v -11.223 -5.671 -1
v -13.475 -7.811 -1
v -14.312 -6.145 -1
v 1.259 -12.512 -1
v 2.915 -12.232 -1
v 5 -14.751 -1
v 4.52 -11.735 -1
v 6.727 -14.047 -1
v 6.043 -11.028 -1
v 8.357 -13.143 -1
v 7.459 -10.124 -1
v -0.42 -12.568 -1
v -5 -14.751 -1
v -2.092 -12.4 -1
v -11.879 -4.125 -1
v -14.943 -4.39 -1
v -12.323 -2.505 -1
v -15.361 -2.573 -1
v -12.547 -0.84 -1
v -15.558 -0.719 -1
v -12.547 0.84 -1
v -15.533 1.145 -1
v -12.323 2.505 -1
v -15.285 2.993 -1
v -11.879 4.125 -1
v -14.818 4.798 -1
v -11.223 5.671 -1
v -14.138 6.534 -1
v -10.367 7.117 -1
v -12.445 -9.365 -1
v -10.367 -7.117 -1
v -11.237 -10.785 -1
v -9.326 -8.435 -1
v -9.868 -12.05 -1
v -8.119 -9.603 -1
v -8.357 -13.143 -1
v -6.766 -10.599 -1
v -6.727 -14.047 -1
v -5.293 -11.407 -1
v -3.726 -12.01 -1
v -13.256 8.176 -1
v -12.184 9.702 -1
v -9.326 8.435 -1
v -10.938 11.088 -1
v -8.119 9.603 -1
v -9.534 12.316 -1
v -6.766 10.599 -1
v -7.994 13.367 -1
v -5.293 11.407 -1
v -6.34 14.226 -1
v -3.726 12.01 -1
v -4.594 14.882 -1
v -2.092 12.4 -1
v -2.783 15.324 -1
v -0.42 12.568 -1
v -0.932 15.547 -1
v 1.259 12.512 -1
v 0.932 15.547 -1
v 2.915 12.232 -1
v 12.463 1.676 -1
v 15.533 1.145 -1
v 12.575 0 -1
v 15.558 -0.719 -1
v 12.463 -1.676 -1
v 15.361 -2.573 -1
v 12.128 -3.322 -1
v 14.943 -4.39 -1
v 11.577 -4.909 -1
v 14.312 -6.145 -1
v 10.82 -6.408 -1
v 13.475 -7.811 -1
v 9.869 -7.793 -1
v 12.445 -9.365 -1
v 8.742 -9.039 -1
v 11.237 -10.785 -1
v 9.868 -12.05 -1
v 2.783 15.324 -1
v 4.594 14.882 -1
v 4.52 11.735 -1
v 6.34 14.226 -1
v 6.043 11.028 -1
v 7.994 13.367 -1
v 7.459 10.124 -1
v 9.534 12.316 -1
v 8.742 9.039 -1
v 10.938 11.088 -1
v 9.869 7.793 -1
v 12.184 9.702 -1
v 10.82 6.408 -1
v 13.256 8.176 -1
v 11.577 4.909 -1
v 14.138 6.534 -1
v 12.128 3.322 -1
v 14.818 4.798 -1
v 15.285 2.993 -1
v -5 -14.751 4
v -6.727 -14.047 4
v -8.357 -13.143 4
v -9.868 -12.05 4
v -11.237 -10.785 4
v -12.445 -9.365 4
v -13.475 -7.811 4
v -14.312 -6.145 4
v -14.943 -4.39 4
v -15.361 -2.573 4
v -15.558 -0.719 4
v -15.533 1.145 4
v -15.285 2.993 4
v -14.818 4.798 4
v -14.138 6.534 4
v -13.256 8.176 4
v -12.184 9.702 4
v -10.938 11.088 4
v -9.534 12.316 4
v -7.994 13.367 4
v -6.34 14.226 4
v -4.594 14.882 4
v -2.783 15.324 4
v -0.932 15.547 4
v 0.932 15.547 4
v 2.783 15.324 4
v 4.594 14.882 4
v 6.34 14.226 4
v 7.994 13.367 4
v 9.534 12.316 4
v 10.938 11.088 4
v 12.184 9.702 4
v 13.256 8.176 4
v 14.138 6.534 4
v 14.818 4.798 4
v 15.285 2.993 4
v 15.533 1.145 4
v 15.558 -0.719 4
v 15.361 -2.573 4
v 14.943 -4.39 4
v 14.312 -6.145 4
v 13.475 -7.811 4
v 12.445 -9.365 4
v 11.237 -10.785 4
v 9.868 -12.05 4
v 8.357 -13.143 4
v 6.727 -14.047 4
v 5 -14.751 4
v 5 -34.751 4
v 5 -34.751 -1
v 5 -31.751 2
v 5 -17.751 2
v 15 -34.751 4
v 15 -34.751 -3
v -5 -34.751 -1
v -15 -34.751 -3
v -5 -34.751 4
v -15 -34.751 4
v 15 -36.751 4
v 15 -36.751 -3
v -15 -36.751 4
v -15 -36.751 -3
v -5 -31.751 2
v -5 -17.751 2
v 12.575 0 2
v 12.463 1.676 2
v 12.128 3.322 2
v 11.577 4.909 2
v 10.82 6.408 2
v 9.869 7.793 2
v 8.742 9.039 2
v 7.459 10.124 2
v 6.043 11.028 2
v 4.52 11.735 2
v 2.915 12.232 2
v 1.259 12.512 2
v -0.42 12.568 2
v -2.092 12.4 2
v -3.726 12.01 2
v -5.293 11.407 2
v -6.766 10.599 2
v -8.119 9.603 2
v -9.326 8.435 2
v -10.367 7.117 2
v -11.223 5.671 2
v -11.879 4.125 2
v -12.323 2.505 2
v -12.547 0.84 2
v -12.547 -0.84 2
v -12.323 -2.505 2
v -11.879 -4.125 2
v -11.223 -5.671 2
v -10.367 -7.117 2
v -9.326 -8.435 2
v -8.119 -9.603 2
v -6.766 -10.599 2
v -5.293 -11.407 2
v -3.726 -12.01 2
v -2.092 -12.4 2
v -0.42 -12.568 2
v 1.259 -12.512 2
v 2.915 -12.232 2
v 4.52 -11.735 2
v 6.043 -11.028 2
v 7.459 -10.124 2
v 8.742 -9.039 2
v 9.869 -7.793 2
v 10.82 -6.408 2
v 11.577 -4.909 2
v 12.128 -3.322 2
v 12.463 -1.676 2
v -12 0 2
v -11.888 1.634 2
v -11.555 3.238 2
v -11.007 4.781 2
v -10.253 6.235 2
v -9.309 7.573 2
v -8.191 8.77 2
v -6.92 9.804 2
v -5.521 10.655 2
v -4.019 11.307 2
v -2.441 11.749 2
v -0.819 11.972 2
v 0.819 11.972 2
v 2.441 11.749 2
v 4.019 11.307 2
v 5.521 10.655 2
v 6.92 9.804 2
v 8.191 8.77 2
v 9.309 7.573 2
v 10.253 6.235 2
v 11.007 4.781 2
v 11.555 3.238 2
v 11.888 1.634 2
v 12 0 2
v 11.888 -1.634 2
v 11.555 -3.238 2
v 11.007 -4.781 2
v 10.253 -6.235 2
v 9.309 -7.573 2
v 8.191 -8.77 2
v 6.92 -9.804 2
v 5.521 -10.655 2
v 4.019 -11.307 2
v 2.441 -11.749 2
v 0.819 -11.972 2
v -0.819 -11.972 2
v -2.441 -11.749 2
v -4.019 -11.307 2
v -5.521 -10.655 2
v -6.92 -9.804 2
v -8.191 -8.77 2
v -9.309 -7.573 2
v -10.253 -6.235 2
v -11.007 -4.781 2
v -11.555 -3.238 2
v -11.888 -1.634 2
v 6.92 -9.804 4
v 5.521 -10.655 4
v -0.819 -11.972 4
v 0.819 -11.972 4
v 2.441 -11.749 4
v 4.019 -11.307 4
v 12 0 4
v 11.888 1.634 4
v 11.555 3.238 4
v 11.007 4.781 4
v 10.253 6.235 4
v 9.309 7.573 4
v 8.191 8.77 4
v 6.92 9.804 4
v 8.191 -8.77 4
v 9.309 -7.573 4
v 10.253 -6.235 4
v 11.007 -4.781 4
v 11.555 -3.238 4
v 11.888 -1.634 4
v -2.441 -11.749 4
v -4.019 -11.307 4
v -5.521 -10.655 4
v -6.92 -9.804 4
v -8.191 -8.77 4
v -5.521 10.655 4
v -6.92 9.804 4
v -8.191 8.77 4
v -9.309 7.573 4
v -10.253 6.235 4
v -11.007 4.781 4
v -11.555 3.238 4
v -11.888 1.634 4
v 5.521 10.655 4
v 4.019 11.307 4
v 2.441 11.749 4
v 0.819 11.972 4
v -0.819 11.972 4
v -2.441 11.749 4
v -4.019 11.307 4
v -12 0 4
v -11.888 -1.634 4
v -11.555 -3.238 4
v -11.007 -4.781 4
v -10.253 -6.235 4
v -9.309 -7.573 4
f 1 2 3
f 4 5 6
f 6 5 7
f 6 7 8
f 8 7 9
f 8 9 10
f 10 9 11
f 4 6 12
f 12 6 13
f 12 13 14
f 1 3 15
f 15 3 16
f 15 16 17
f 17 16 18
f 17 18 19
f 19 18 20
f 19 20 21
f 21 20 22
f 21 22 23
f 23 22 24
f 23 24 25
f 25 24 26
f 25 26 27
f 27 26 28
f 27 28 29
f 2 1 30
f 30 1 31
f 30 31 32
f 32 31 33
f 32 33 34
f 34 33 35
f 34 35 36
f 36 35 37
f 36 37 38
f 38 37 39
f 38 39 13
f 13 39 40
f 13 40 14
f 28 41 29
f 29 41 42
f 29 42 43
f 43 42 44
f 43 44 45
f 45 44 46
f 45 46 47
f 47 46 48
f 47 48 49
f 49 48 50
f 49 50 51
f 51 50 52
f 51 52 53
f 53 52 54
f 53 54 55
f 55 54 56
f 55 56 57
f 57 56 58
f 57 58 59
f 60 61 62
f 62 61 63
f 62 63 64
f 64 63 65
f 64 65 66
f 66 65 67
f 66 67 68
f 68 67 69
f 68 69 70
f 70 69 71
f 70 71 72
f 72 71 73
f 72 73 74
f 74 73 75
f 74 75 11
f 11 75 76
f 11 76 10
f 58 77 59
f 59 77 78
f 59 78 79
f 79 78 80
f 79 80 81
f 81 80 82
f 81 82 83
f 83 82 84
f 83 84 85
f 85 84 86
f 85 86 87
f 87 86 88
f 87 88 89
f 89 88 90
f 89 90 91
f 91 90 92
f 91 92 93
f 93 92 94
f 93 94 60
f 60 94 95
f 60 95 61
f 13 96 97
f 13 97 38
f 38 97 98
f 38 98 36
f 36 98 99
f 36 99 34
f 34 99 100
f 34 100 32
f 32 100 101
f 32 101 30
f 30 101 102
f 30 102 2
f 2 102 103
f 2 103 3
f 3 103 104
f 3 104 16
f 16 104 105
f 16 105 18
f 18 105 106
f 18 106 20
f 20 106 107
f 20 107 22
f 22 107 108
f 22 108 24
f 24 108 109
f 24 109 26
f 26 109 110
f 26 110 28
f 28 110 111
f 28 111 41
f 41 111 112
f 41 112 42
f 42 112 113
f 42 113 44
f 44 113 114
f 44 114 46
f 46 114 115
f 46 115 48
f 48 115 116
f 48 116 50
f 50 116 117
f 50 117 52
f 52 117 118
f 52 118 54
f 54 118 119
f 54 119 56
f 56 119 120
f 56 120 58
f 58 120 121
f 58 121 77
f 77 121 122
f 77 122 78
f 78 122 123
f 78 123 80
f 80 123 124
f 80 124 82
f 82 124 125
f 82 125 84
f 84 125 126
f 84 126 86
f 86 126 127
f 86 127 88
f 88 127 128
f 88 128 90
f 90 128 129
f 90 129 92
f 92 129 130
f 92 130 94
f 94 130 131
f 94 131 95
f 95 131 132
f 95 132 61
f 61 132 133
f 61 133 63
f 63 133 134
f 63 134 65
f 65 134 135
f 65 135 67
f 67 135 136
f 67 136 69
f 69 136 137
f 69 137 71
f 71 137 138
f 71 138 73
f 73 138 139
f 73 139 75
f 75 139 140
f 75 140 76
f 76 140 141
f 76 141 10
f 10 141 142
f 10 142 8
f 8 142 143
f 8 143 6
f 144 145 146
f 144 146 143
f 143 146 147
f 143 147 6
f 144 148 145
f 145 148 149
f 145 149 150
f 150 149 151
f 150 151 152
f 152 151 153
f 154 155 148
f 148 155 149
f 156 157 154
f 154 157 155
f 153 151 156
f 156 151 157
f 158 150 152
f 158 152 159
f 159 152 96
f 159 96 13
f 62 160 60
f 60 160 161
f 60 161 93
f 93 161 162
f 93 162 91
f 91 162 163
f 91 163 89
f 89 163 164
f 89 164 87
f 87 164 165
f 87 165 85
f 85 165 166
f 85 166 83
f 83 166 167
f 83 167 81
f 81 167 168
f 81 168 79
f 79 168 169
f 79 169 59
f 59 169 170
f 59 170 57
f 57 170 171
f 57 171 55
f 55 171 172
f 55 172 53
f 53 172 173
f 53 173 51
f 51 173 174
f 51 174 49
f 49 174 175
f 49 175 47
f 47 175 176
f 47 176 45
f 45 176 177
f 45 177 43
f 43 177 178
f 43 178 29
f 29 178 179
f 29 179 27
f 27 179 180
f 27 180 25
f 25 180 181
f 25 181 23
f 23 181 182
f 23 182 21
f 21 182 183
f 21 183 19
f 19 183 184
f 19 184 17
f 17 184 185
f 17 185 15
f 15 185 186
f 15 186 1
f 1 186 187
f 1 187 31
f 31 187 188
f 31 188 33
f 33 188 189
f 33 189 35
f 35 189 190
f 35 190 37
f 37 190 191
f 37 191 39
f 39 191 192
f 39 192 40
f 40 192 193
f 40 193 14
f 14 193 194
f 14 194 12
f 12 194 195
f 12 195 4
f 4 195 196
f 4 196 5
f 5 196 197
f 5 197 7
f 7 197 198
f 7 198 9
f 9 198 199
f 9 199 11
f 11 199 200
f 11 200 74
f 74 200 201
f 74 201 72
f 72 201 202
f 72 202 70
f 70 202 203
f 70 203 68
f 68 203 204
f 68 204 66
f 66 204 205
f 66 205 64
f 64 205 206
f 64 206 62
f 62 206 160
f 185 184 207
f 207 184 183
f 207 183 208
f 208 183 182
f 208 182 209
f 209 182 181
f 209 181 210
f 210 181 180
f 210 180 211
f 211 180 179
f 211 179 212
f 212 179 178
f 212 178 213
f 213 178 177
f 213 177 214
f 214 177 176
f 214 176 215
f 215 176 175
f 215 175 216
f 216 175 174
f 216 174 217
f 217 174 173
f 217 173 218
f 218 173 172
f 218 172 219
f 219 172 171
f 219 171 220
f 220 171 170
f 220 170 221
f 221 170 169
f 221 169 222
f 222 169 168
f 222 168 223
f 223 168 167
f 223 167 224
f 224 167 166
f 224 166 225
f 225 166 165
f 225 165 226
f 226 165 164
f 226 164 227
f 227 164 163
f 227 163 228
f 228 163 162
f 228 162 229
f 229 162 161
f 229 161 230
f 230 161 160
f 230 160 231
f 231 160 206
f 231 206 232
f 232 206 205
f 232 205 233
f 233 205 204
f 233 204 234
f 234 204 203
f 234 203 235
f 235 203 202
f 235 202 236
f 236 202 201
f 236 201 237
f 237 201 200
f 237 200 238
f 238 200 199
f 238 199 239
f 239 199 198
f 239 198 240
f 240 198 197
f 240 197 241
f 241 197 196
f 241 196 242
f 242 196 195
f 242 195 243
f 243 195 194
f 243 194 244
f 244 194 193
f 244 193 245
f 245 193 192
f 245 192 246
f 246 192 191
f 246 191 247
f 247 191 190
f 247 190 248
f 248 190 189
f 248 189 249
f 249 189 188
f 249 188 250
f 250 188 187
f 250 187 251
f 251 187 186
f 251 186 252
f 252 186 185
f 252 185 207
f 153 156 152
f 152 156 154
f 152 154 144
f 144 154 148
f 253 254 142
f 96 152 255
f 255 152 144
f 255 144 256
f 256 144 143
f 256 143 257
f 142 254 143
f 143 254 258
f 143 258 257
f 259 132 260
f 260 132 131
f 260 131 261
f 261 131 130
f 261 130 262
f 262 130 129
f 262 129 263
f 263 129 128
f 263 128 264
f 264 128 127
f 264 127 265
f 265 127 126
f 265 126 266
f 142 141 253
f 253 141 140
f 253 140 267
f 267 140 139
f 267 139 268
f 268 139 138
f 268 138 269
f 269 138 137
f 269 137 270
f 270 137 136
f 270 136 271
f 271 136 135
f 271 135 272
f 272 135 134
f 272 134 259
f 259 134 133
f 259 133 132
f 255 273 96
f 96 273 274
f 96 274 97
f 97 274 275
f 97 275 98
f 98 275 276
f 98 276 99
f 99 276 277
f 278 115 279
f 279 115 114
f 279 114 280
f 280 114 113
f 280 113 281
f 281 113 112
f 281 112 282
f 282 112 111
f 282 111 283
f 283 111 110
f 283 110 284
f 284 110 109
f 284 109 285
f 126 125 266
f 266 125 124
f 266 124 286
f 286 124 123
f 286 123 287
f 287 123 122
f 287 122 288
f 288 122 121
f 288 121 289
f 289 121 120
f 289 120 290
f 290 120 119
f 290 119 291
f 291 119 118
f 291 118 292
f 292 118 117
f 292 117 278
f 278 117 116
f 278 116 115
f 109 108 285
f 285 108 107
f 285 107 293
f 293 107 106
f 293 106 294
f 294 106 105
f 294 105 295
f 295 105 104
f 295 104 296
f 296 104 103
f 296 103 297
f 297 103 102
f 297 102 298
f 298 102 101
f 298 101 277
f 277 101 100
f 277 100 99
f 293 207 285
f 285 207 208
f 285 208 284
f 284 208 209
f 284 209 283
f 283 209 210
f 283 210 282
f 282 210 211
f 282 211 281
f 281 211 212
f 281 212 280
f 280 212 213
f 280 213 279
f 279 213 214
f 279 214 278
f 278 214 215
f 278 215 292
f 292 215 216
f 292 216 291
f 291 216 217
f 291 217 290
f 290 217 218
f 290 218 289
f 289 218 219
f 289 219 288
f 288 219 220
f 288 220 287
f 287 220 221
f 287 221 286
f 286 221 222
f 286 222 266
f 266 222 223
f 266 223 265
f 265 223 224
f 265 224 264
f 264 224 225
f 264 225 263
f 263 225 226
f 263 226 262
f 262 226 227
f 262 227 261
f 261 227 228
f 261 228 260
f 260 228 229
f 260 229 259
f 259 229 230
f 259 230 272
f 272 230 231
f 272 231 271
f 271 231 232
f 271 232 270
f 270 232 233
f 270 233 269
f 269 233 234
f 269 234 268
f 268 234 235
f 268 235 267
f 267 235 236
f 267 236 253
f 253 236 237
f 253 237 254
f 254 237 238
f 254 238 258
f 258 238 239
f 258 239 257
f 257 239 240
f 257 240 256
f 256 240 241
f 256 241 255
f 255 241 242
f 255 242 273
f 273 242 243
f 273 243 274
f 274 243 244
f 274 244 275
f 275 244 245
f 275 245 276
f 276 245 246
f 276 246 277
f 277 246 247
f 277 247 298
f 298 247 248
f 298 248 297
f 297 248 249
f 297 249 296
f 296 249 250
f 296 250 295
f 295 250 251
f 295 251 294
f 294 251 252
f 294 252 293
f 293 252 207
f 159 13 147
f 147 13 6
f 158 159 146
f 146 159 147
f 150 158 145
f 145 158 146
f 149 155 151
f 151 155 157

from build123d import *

# Parameters (mm, degrees)
BOSS_EXTRUDE1_DEPTH      = 2
BOSS_EXTRUDE1_DEPTH_BACK = 1
SKETCH1_R                = 12.575
SKETCH2_R                = 12
BOSS_EXTRUDE2_DEPTH      = 2
CUT_EXTRUDE1_DEPTH       = 43.30766223
BOSS_EXTRUDE3_DEPTH      = 2


with BuildPart() as part:
    # Sketch1 → Boss-Extrude1 (new, two sides: drawn at the far end of the back side and taken through both)
    with BuildSketch(Plane.XY.offset(-BOSS_EXTRUDE1_DEPTH_BACK)):
        with BuildLine():
            Line((5, -34.750614394), (15, -34.750614394))
            Line((15, -34.750614394), (15, -36.750614394))
            Line((15, -36.750614394), (-15, -36.750614394))
            Line((-15, -36.750614394), (-15, -34.750614394))
            Line((-15, -34.750614394), (-5, -34.750614394))
            Line((-5, -34.750614394), (-5, -14.750614394))
            ThreePointArc((-5, -14.750614394), (0, 15.575), (5, -14.750614394))
            Line((5, -14.750614394), (5, -34.750614394))
        make_face()
        Circle(SKETCH1_R, mode=Mode.SUBTRACT)
    extrude(amount=BOSS_EXTRUDE1_DEPTH + BOSS_EXTRUDE1_DEPTH_BACK)

    # Sketch2 → Boss-Extrude2 (add)
    with BuildSketch(Plane.XY.offset(2)):
        with BuildLine():
            Line((-5, -14.750614394), (-5, -34.750614394))
            Line((-5, -34.750614394), (-15, -34.750614394))
            Line((-15, -34.750614394), (-15, -36.750614394))
            Line((-15, -36.750614394), (15, -36.750614394))
            Line((15, -36.750614394), (15, -34.750614394))
            Line((15, -34.750614394), (5, -34.750614394))
            Line((5, -34.750614394), (5, -14.750614394))
            ThreePointArc((5, -14.750614394), (0, 15.575), (-5, -14.750614394))
        make_face()
        Circle(SKETCH2_R, mode=Mode.SUBTRACT)
    extrude(amount=BOSS_EXTRUDE2_DEPTH)

    # Sketch4 → Cut-Extrude1 (cut, through all)
    with BuildSketch(Plane.ZY.offset(5)):
        Polygon((-1, -14.750614394), (2, -17.750614394), (2, -31.750614394), (-1, -34.750614394), align=None)
    extrude(amount=-CUT_EXTRUDE1_DEPTH, mode=Mode.SUBTRACT)

    # Sketch5 → Boss-Extrude3 (add)
    with BuildSketch(Plane(origin=(0, 0, -1), x_dir=(-1, 0, 0), z_dir=(0, 0, -1))):
        Polygon((15, -34.750614394), (5, -34.750614394), (-5, -34.750614394), (-15, -34.750614394), (-15, -36.750614394), (15, -36.750614394), align=None)
    extrude(amount=BOSS_EXTRUDE3_DEPTH)


solid = part.part
